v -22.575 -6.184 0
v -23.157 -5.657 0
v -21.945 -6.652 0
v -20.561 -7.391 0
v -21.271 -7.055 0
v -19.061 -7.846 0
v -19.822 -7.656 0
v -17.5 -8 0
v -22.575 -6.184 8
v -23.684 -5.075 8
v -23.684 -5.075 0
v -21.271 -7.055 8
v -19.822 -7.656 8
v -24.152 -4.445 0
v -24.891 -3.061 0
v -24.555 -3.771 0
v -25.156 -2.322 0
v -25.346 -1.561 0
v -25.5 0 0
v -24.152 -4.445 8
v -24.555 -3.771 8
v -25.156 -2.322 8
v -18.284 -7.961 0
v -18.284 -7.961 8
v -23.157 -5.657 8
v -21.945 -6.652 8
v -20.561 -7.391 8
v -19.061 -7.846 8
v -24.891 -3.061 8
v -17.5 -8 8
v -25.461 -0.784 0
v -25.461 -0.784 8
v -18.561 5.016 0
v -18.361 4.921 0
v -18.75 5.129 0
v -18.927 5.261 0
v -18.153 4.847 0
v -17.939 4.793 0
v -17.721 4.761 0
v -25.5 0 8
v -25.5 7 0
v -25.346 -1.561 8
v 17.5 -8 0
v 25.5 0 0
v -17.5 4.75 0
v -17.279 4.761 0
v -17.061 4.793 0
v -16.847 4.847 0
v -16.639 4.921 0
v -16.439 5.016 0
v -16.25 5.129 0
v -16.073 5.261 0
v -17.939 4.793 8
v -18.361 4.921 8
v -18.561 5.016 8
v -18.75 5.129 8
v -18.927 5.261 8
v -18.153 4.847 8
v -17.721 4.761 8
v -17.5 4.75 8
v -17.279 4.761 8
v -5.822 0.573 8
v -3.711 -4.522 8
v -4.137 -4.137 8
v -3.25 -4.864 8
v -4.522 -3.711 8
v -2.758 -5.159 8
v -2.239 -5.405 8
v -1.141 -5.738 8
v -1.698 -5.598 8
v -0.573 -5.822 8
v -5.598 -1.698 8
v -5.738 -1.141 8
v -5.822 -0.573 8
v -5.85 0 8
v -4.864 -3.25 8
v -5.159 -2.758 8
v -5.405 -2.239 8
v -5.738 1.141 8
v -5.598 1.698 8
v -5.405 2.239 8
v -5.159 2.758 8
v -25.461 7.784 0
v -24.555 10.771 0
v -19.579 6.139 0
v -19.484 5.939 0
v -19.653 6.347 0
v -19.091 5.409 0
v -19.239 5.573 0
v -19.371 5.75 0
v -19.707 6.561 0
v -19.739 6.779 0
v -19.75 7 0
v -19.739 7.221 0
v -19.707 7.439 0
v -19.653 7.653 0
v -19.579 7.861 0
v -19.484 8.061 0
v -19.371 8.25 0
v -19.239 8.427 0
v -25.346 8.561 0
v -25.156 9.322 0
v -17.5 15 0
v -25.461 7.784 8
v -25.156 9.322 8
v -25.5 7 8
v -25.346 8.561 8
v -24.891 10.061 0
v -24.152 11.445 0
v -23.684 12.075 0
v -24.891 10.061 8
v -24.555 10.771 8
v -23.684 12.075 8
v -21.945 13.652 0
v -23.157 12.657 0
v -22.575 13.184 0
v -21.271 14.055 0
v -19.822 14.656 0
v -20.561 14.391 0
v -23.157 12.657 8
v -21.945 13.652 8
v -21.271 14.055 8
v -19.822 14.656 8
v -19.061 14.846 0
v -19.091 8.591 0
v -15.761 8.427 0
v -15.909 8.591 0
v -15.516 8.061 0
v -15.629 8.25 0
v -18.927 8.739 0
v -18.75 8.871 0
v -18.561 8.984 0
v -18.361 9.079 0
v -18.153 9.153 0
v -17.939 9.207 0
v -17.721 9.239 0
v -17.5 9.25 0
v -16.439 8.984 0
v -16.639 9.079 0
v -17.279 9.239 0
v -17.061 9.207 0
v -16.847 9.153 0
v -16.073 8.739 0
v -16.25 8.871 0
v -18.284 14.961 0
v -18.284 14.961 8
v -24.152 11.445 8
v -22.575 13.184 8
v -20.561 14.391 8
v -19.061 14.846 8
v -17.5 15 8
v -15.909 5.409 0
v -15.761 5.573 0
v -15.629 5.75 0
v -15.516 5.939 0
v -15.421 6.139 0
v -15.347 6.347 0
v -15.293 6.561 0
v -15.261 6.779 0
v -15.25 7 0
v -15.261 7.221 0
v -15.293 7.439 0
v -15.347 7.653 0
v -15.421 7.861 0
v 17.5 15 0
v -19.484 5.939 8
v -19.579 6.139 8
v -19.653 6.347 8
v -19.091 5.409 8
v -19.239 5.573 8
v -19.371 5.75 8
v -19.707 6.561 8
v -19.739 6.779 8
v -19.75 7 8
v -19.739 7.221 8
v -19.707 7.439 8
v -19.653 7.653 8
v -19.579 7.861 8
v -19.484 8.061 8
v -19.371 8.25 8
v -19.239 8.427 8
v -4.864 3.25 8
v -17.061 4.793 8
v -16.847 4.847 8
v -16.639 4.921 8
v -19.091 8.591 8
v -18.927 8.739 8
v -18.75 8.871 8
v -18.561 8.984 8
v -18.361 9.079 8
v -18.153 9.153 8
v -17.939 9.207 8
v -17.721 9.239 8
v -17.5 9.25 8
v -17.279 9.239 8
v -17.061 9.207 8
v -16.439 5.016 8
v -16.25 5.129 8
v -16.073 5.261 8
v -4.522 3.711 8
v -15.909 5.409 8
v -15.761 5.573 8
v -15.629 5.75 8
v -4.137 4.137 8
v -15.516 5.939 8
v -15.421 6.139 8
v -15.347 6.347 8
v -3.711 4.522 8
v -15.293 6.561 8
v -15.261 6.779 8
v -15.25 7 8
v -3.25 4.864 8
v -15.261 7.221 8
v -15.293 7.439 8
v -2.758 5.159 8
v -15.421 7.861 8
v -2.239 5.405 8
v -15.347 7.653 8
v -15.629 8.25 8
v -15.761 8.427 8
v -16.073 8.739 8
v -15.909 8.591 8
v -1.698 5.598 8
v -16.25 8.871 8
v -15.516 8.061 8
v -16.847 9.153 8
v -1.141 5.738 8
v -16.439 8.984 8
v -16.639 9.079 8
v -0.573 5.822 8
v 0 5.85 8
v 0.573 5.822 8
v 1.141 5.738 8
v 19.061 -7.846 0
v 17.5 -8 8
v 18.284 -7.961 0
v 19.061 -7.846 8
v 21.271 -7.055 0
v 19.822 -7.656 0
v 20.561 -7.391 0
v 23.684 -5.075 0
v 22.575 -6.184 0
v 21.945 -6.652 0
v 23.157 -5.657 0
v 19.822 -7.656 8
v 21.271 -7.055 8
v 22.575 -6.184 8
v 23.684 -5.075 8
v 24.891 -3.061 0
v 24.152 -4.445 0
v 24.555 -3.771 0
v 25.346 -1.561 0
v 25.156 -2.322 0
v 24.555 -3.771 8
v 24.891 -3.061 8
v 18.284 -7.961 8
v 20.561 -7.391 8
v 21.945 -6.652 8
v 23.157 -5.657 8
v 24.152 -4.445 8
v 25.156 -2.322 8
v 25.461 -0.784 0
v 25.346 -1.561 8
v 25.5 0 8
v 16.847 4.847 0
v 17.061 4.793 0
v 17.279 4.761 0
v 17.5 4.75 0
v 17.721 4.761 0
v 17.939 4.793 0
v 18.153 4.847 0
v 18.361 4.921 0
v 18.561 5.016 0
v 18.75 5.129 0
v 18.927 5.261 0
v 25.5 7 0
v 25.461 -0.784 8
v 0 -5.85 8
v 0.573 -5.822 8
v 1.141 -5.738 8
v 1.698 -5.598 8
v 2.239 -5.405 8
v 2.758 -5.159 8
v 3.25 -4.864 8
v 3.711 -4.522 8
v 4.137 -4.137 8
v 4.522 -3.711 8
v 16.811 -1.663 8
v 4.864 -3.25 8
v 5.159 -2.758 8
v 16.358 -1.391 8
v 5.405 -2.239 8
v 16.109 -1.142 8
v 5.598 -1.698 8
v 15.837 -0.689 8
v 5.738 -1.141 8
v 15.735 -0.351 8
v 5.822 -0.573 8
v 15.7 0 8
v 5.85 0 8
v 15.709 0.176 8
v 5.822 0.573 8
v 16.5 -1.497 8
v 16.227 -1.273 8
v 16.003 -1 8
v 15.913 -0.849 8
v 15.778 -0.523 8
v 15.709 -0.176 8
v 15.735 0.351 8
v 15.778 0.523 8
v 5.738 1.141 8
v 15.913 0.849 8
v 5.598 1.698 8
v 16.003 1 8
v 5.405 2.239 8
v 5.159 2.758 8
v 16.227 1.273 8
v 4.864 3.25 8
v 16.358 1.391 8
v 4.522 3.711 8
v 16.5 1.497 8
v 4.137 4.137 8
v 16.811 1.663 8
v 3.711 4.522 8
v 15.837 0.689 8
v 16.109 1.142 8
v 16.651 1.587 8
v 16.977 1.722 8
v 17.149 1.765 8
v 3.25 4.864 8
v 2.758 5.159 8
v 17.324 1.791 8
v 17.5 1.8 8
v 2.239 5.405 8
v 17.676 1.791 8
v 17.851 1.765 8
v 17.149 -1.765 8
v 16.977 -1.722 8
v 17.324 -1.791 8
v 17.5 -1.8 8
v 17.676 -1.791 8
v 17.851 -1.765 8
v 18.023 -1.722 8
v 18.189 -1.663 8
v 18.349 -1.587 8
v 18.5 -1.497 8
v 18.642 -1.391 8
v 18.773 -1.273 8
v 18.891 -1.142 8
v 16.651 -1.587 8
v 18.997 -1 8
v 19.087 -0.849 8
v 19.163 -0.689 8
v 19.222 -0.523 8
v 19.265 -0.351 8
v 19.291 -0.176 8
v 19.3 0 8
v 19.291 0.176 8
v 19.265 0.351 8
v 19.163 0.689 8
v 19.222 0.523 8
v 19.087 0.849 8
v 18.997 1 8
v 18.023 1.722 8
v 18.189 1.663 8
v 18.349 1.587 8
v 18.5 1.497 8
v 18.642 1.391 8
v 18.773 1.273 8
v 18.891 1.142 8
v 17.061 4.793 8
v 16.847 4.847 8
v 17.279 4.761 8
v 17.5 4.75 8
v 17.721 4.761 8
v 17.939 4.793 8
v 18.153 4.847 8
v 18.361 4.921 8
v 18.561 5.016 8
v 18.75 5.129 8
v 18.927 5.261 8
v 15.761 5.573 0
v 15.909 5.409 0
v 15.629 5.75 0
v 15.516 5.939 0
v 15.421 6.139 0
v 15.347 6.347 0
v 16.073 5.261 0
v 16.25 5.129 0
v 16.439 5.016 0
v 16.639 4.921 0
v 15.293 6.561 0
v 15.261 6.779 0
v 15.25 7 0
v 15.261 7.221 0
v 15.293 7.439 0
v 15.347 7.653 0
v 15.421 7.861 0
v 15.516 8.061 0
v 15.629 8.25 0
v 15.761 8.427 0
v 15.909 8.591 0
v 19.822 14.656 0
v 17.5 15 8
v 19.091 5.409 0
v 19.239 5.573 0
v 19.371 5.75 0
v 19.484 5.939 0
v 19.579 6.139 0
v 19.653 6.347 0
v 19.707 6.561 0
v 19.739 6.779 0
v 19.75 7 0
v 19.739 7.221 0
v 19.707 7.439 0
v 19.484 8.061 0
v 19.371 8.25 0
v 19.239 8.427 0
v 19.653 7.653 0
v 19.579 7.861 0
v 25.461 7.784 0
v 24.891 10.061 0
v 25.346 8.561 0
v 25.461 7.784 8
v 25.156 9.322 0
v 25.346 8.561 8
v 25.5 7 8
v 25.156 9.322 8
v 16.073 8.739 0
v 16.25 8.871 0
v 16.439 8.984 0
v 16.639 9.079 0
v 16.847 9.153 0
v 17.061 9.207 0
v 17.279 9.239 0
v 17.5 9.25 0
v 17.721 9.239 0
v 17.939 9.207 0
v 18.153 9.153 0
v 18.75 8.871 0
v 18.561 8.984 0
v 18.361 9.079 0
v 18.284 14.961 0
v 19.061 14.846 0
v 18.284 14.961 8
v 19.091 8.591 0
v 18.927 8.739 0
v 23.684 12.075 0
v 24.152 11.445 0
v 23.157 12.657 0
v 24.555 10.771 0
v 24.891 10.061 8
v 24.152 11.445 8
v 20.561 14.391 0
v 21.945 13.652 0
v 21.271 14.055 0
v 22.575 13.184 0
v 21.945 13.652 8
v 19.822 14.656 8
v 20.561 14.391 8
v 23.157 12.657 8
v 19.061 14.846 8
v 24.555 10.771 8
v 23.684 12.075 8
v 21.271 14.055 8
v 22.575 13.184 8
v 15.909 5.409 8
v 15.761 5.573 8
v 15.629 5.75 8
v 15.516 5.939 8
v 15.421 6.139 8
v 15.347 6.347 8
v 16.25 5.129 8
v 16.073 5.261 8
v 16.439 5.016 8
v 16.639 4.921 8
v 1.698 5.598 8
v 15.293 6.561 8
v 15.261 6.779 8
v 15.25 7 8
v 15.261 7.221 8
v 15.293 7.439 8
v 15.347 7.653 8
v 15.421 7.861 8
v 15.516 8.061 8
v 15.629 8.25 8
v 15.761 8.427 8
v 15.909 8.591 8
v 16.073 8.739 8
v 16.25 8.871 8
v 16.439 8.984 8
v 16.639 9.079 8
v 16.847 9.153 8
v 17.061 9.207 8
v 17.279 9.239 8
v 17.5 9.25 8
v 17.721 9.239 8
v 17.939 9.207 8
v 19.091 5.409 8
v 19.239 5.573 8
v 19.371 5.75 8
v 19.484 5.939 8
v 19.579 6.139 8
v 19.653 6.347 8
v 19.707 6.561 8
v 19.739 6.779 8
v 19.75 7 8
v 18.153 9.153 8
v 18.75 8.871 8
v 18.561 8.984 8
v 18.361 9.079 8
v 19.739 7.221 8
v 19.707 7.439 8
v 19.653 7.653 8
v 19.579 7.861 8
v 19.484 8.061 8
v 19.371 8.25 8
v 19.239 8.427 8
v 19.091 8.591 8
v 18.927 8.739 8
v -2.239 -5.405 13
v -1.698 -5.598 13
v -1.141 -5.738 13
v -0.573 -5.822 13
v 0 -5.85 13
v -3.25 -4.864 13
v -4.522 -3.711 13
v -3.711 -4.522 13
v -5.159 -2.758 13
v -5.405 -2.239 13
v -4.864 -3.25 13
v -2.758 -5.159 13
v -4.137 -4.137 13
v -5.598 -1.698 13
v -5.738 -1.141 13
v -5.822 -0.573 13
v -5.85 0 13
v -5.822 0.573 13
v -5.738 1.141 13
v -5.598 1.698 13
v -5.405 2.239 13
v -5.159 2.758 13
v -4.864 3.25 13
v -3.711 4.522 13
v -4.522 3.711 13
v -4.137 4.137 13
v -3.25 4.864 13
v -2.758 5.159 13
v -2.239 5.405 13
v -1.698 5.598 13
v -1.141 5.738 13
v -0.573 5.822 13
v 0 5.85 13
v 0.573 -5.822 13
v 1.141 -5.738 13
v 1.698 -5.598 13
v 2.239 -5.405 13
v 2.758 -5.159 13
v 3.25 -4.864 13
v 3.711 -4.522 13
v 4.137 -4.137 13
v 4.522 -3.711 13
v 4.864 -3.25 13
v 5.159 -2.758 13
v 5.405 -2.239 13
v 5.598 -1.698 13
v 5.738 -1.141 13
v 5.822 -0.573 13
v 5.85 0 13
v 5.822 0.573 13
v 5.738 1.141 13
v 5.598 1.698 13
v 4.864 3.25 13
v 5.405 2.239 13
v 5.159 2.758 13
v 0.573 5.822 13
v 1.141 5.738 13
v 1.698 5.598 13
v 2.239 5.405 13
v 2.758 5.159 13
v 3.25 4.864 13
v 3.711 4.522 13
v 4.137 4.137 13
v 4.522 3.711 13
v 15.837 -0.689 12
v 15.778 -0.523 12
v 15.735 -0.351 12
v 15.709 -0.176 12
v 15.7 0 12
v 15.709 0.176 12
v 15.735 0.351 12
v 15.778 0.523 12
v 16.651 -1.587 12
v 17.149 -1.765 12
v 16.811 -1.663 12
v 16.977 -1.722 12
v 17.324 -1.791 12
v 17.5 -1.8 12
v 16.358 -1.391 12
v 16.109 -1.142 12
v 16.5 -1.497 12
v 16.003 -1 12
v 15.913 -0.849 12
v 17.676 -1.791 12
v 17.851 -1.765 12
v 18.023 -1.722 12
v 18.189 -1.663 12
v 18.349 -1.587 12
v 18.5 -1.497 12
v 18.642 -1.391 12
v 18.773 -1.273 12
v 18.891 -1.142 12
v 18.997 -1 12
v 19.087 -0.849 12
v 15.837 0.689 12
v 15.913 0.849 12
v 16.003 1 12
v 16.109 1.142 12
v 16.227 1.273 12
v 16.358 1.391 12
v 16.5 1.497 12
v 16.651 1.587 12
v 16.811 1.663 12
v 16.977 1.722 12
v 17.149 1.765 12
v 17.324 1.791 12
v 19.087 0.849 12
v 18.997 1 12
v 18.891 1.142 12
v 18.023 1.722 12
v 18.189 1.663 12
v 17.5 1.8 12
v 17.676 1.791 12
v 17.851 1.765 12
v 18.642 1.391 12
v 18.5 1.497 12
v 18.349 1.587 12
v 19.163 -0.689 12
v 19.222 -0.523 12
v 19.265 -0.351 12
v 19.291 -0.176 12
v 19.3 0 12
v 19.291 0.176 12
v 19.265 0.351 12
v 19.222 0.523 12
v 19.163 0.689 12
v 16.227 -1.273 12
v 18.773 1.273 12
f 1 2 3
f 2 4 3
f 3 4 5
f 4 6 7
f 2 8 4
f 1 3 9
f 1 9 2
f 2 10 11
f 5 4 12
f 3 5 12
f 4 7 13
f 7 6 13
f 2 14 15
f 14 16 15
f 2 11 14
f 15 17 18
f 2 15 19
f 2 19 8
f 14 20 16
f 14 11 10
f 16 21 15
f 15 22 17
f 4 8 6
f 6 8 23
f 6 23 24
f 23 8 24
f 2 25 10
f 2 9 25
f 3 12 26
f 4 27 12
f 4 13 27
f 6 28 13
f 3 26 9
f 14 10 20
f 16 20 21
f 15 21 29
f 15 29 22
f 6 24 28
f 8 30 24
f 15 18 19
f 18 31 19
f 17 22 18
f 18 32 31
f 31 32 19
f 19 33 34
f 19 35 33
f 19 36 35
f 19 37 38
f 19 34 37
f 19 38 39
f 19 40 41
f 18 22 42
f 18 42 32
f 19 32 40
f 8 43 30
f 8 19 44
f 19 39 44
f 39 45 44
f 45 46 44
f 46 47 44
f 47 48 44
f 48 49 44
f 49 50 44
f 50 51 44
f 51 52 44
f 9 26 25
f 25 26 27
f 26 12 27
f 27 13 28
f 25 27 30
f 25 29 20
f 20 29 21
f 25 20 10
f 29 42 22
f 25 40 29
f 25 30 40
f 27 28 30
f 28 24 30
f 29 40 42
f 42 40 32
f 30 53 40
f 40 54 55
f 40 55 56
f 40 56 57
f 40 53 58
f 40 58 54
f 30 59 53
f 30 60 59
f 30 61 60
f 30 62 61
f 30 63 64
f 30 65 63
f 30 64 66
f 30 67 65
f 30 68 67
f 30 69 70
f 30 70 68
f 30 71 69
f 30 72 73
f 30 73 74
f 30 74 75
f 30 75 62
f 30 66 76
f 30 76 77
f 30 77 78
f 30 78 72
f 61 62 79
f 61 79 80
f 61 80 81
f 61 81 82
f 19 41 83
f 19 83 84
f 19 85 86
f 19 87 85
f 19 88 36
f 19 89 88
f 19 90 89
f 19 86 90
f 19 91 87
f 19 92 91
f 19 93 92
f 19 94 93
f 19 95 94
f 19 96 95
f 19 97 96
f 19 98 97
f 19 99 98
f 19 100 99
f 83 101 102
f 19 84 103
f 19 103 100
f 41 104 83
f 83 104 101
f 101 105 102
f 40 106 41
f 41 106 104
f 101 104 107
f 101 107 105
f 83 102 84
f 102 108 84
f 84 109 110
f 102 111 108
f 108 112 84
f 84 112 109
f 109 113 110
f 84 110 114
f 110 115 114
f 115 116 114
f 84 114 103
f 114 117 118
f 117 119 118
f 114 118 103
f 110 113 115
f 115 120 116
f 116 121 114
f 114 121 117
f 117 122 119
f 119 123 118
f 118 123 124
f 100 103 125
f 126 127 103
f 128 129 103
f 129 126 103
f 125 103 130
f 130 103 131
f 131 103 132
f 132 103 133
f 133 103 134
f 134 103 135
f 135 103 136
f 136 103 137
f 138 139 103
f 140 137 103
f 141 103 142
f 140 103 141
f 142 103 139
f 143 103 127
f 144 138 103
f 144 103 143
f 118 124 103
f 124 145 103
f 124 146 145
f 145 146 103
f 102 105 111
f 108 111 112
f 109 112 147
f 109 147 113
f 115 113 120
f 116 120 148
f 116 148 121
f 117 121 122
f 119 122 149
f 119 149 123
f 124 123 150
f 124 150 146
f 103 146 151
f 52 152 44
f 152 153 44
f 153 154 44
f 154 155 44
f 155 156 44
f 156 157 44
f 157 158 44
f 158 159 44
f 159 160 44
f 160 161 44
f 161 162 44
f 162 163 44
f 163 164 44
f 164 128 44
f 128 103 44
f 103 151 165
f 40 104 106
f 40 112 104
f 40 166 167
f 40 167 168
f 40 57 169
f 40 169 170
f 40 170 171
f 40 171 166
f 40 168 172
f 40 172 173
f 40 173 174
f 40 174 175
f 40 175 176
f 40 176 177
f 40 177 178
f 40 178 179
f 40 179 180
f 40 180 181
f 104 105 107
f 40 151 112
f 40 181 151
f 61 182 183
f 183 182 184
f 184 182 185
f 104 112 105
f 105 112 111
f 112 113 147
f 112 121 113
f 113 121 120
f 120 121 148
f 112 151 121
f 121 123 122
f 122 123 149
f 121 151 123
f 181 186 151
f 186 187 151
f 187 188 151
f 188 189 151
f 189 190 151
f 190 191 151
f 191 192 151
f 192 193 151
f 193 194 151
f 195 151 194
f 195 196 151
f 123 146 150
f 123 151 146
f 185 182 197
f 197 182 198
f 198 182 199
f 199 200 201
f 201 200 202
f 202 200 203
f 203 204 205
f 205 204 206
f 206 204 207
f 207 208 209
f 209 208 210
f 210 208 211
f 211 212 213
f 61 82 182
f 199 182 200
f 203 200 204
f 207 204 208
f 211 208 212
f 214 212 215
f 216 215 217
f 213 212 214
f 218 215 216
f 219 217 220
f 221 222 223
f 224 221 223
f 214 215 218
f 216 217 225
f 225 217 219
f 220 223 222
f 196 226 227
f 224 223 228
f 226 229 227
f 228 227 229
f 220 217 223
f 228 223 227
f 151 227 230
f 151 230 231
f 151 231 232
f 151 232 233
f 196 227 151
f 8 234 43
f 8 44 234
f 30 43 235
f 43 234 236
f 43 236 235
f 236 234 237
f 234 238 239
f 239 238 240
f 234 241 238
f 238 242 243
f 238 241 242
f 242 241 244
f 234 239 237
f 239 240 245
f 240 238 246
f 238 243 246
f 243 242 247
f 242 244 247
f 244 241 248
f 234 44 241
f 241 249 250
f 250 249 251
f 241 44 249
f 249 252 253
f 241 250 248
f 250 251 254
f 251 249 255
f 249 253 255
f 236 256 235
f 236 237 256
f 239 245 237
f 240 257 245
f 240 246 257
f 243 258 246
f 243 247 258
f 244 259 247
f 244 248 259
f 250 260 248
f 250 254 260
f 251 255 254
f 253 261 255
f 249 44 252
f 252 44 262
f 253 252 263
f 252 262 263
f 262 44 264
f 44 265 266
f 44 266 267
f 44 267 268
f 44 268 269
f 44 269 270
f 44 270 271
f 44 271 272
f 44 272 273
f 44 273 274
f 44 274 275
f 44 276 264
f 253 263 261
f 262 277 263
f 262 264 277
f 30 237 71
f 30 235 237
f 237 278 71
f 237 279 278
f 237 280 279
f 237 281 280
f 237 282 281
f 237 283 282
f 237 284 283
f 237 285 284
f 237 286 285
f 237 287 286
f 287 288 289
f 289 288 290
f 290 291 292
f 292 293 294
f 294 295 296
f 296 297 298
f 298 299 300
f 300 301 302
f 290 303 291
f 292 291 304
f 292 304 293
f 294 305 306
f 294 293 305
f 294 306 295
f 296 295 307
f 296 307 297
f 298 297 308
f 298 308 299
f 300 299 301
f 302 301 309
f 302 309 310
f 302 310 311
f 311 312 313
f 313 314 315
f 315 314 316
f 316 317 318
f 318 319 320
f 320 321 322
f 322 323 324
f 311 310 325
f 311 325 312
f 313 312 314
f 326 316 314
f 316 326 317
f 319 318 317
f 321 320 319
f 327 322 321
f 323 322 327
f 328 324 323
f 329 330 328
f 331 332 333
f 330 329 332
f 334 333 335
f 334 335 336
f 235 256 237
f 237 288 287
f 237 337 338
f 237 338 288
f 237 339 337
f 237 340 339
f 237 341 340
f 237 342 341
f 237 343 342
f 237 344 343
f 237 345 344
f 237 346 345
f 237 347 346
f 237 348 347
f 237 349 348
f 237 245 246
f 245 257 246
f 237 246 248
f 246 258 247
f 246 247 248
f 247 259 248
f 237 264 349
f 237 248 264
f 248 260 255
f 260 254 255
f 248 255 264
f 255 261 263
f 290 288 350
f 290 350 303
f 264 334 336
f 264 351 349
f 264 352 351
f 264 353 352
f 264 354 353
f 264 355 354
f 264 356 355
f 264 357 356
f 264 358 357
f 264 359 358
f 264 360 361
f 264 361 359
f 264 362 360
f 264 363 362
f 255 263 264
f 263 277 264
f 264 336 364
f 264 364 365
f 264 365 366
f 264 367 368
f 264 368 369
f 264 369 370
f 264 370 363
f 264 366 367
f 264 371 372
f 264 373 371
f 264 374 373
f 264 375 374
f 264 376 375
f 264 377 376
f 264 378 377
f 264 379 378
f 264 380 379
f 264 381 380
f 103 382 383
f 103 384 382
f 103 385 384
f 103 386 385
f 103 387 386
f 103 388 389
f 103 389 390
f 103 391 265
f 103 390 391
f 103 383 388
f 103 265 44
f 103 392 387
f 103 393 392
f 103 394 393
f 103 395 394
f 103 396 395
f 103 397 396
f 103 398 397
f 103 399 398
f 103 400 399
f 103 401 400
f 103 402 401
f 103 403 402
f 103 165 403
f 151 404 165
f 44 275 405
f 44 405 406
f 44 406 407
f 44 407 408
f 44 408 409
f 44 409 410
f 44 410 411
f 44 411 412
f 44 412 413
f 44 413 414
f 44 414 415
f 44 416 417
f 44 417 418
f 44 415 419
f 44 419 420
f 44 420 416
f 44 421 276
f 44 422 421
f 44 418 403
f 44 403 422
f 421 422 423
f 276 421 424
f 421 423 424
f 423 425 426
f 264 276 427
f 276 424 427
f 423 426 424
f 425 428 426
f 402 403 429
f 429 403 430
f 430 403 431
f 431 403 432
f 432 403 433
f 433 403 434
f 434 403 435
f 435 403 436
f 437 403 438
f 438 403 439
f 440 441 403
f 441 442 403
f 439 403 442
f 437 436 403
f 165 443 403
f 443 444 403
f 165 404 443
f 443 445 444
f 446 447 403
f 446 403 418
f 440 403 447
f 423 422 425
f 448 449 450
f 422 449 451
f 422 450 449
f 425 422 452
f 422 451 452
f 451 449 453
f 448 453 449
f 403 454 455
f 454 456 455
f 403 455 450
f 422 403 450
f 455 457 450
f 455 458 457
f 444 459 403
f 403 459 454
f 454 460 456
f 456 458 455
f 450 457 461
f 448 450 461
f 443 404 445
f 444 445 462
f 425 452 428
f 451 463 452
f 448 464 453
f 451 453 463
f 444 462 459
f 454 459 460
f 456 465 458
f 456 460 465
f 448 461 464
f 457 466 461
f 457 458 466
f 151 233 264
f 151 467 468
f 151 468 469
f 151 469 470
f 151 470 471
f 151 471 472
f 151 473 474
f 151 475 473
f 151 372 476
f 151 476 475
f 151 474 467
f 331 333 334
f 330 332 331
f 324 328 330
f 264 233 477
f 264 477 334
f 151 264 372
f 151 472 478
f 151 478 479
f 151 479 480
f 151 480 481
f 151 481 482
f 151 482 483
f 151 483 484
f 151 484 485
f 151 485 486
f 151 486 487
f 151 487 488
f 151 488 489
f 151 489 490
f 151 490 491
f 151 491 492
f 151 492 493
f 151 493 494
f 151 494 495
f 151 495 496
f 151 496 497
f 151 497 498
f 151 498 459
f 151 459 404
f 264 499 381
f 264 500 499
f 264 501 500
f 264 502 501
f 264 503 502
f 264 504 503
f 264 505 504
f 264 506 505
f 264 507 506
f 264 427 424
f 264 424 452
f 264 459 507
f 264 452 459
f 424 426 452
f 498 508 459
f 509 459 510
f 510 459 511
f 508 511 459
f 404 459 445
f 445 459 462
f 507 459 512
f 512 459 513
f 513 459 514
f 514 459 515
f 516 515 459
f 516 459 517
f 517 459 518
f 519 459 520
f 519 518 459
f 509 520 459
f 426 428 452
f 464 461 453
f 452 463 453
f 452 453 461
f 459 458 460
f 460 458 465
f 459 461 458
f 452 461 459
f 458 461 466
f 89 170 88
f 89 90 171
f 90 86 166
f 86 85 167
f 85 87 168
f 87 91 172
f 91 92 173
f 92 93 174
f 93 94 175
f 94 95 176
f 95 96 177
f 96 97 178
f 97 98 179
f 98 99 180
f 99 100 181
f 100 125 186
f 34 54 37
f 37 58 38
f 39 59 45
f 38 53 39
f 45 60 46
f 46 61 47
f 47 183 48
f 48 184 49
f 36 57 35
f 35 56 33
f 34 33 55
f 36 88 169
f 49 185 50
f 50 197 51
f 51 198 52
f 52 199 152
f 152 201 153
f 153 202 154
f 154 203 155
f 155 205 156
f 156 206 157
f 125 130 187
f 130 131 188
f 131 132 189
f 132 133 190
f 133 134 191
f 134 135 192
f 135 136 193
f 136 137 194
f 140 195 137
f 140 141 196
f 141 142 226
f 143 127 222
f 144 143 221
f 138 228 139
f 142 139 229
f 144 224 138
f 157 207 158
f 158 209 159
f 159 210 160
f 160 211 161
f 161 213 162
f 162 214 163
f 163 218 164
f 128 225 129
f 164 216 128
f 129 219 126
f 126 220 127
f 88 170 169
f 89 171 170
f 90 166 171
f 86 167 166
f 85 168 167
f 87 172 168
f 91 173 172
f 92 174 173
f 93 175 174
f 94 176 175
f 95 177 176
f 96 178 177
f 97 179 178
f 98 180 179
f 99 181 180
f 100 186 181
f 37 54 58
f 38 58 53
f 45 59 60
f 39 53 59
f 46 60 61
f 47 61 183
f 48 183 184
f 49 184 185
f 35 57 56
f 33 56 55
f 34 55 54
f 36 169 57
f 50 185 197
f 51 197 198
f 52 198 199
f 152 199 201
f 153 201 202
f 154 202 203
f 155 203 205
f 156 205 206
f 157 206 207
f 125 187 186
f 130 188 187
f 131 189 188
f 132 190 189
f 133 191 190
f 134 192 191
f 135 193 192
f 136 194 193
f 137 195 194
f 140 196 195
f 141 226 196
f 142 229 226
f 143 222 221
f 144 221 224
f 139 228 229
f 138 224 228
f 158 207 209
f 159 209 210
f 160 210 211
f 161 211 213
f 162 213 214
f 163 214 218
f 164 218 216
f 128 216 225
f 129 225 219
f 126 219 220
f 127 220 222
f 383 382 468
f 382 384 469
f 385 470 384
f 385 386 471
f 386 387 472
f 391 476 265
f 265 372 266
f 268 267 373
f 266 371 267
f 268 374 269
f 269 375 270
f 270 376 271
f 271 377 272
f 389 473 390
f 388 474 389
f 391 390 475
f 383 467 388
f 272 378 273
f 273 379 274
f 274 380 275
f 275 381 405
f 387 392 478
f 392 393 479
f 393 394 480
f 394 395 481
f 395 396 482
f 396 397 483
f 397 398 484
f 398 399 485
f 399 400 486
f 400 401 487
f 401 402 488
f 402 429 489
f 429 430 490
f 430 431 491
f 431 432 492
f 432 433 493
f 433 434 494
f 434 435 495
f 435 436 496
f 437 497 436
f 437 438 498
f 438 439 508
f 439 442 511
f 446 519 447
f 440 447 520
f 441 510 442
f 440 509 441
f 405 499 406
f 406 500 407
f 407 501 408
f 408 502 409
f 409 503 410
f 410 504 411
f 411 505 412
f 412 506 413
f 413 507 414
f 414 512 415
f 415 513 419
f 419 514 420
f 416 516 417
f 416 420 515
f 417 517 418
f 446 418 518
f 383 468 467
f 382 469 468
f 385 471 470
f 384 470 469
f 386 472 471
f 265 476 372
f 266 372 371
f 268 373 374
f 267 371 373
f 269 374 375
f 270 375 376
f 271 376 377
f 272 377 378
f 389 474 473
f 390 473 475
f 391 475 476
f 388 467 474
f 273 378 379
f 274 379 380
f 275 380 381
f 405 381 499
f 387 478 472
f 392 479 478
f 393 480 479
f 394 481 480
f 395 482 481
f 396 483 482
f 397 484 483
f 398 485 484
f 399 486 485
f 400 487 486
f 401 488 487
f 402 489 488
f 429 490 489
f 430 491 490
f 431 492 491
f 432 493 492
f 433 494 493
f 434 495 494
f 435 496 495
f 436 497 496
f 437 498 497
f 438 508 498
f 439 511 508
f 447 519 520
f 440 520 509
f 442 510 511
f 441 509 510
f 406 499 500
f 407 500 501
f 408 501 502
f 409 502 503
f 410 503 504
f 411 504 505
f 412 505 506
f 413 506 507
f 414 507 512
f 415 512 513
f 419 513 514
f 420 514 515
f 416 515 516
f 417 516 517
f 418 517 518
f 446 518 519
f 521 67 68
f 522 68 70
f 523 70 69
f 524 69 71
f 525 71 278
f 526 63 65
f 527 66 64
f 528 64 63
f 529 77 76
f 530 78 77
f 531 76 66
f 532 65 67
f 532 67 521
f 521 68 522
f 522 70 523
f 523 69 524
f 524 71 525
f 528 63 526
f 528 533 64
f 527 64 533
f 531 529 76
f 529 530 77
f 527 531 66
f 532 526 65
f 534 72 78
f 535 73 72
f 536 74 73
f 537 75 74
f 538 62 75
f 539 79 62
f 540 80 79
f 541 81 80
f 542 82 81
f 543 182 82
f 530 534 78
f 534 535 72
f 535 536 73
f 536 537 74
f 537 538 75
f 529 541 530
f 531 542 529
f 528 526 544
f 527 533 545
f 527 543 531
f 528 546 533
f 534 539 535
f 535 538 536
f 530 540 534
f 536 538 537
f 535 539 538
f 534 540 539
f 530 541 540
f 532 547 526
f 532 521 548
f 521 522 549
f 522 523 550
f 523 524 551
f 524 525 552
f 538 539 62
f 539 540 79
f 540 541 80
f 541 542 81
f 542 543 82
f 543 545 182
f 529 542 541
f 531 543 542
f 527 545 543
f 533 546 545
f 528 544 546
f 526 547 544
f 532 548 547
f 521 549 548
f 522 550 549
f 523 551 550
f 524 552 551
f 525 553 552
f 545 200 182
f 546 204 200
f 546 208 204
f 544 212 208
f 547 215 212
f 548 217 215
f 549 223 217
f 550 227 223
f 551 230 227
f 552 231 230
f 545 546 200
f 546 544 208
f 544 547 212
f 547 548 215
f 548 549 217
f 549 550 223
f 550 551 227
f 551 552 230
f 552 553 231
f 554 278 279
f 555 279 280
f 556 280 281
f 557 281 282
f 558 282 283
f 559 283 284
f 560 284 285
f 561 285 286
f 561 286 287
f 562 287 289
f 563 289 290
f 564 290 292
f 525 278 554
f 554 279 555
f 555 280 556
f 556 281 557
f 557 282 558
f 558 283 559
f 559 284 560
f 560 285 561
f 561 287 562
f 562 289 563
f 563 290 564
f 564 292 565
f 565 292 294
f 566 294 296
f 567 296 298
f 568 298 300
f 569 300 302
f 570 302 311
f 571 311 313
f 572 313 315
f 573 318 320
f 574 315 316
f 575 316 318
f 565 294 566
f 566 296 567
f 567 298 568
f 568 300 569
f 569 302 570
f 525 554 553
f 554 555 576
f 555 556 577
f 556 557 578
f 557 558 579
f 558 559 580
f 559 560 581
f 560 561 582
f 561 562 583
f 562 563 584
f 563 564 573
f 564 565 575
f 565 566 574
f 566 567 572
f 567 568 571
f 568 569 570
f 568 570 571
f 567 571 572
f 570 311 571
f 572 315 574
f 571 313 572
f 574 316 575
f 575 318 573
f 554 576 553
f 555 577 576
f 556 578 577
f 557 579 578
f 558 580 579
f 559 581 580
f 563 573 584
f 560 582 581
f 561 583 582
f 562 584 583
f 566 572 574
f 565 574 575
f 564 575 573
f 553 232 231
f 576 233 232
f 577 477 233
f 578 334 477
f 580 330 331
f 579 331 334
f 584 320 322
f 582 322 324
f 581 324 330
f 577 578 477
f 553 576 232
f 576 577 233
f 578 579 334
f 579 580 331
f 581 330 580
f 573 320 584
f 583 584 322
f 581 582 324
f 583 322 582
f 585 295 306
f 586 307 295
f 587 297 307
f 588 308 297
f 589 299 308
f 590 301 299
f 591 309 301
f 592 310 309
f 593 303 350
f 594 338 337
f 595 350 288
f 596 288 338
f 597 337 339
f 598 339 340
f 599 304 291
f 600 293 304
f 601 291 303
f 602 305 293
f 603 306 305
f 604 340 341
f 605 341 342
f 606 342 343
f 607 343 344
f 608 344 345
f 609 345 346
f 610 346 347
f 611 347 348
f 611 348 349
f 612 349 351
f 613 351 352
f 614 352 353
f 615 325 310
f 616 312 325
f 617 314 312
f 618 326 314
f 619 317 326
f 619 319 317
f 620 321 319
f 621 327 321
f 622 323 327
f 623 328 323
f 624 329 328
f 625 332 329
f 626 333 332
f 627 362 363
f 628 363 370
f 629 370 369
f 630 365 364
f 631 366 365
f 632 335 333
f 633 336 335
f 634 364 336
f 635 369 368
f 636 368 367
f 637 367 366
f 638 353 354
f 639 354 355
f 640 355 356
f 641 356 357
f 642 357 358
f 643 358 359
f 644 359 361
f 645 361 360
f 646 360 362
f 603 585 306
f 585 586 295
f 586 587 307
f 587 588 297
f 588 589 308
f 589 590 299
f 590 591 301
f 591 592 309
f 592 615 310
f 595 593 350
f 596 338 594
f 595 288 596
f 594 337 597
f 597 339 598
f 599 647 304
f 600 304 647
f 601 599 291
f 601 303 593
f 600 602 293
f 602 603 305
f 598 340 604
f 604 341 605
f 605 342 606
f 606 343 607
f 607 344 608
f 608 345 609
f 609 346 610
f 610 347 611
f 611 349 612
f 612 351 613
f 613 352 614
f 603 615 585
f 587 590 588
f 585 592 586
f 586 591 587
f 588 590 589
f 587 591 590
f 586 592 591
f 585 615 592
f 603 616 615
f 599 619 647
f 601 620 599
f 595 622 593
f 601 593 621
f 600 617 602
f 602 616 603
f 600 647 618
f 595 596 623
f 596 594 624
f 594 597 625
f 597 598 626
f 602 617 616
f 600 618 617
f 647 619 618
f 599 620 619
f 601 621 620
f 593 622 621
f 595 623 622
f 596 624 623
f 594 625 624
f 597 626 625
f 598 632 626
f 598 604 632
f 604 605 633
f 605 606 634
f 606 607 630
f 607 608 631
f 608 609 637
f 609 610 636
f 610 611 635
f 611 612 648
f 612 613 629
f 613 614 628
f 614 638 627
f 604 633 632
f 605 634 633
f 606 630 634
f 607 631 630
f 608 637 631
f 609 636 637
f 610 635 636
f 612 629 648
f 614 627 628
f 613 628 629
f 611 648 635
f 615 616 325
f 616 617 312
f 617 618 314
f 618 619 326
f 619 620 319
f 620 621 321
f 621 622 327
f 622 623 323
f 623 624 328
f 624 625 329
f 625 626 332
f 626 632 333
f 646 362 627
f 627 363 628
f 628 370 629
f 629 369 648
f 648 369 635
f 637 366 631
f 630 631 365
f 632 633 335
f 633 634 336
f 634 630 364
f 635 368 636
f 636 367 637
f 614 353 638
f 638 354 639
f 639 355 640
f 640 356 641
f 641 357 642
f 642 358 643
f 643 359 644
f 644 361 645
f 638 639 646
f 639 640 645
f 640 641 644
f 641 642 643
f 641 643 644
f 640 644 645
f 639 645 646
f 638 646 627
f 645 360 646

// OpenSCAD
// ─────────────────────────────────────────────────────────────
// Motor ear-hole drill template  (for salvaging an already-printed base)
//
// Locates on TWO existing features of the printed base so it cannot shift
// or rotate while you drill:
//   • center pin  → drops into the Ø12 shaft hole (the true axis / datum)
//   • locator pin → drops into ONE existing old ear hole (Ø4.2 at 17.5,0),
//                   which pins the rotation
// It then guides a drill at the two NEW ear positions (±17.5, 7 mm off the
// old line).
//
// PRINTS as-is: plate flat on the bed, the two pins as short studs pointing
// up. No supports.
//
// USE: remove the motor. Set the base plate-side UP (the flat platter face).
// FLIP the template over so the pins point down: seat the center pin in the
// shaft hole and the locator pin in EITHER old ear hole (both work). When it
// sits flush, drill straight down through the two guide holes with a 4.4 mm
// bit (11/64").
// Deburr. Mount the motor over the NEW hole pair, ears bolted through with
// nuts inside the skirt. (The offset side is symmetric — just rotate the
// motor so its ears line up with the holes you drilled.)
// ─────────────────────────────────────────────────────────────

$fn = 64;

c2c          = 35;    // ear-hole spacing (matches turntable.scad)
perp         = 7;     // shaft → new-ear-hole line offset (matches turntable.scad)

th           = 8;     // template thickness = drill-guide length (keeps bit straight)
center_pin_d = 11.7;  // into the Ø12 shaft hole
center_pin_h = 5;
loc_pin_d    = 3.6;   // into an existing old Ø4.2 ear hole at (c2c/2, 0)
loc_pin_h    = 4;
guide_d      = 4.5;   // drill guide for the new holes (use a 4.4 mm bit)

module template() {
    difference() {
        // body plate on the bed (z = 0 .. th), rounded around all features
        hull() for (p = [[-c2c/2, 0], [c2c/2, 0], [-c2c/2, perp], [c2c/2, perp]])
            translate([p[0], p[1], 0]) cylinder(d = 16, h = th);
        // guide holes at the NEW ear positions, all the way through
        for (s = [-1, 1])
            translate([s * c2c/2, perp, -1]) cylinder(d = guide_d, h = th + 2);
    }
    // registration pins as studs on top (become the locators when flipped)
    translate([0,     0, th]) cylinder(d = center_pin_d, h = center_pin_h);
    translate([c2c/2, 0, th]) cylinder(d = loc_pin_d,    h = loc_pin_h);
}

template();
